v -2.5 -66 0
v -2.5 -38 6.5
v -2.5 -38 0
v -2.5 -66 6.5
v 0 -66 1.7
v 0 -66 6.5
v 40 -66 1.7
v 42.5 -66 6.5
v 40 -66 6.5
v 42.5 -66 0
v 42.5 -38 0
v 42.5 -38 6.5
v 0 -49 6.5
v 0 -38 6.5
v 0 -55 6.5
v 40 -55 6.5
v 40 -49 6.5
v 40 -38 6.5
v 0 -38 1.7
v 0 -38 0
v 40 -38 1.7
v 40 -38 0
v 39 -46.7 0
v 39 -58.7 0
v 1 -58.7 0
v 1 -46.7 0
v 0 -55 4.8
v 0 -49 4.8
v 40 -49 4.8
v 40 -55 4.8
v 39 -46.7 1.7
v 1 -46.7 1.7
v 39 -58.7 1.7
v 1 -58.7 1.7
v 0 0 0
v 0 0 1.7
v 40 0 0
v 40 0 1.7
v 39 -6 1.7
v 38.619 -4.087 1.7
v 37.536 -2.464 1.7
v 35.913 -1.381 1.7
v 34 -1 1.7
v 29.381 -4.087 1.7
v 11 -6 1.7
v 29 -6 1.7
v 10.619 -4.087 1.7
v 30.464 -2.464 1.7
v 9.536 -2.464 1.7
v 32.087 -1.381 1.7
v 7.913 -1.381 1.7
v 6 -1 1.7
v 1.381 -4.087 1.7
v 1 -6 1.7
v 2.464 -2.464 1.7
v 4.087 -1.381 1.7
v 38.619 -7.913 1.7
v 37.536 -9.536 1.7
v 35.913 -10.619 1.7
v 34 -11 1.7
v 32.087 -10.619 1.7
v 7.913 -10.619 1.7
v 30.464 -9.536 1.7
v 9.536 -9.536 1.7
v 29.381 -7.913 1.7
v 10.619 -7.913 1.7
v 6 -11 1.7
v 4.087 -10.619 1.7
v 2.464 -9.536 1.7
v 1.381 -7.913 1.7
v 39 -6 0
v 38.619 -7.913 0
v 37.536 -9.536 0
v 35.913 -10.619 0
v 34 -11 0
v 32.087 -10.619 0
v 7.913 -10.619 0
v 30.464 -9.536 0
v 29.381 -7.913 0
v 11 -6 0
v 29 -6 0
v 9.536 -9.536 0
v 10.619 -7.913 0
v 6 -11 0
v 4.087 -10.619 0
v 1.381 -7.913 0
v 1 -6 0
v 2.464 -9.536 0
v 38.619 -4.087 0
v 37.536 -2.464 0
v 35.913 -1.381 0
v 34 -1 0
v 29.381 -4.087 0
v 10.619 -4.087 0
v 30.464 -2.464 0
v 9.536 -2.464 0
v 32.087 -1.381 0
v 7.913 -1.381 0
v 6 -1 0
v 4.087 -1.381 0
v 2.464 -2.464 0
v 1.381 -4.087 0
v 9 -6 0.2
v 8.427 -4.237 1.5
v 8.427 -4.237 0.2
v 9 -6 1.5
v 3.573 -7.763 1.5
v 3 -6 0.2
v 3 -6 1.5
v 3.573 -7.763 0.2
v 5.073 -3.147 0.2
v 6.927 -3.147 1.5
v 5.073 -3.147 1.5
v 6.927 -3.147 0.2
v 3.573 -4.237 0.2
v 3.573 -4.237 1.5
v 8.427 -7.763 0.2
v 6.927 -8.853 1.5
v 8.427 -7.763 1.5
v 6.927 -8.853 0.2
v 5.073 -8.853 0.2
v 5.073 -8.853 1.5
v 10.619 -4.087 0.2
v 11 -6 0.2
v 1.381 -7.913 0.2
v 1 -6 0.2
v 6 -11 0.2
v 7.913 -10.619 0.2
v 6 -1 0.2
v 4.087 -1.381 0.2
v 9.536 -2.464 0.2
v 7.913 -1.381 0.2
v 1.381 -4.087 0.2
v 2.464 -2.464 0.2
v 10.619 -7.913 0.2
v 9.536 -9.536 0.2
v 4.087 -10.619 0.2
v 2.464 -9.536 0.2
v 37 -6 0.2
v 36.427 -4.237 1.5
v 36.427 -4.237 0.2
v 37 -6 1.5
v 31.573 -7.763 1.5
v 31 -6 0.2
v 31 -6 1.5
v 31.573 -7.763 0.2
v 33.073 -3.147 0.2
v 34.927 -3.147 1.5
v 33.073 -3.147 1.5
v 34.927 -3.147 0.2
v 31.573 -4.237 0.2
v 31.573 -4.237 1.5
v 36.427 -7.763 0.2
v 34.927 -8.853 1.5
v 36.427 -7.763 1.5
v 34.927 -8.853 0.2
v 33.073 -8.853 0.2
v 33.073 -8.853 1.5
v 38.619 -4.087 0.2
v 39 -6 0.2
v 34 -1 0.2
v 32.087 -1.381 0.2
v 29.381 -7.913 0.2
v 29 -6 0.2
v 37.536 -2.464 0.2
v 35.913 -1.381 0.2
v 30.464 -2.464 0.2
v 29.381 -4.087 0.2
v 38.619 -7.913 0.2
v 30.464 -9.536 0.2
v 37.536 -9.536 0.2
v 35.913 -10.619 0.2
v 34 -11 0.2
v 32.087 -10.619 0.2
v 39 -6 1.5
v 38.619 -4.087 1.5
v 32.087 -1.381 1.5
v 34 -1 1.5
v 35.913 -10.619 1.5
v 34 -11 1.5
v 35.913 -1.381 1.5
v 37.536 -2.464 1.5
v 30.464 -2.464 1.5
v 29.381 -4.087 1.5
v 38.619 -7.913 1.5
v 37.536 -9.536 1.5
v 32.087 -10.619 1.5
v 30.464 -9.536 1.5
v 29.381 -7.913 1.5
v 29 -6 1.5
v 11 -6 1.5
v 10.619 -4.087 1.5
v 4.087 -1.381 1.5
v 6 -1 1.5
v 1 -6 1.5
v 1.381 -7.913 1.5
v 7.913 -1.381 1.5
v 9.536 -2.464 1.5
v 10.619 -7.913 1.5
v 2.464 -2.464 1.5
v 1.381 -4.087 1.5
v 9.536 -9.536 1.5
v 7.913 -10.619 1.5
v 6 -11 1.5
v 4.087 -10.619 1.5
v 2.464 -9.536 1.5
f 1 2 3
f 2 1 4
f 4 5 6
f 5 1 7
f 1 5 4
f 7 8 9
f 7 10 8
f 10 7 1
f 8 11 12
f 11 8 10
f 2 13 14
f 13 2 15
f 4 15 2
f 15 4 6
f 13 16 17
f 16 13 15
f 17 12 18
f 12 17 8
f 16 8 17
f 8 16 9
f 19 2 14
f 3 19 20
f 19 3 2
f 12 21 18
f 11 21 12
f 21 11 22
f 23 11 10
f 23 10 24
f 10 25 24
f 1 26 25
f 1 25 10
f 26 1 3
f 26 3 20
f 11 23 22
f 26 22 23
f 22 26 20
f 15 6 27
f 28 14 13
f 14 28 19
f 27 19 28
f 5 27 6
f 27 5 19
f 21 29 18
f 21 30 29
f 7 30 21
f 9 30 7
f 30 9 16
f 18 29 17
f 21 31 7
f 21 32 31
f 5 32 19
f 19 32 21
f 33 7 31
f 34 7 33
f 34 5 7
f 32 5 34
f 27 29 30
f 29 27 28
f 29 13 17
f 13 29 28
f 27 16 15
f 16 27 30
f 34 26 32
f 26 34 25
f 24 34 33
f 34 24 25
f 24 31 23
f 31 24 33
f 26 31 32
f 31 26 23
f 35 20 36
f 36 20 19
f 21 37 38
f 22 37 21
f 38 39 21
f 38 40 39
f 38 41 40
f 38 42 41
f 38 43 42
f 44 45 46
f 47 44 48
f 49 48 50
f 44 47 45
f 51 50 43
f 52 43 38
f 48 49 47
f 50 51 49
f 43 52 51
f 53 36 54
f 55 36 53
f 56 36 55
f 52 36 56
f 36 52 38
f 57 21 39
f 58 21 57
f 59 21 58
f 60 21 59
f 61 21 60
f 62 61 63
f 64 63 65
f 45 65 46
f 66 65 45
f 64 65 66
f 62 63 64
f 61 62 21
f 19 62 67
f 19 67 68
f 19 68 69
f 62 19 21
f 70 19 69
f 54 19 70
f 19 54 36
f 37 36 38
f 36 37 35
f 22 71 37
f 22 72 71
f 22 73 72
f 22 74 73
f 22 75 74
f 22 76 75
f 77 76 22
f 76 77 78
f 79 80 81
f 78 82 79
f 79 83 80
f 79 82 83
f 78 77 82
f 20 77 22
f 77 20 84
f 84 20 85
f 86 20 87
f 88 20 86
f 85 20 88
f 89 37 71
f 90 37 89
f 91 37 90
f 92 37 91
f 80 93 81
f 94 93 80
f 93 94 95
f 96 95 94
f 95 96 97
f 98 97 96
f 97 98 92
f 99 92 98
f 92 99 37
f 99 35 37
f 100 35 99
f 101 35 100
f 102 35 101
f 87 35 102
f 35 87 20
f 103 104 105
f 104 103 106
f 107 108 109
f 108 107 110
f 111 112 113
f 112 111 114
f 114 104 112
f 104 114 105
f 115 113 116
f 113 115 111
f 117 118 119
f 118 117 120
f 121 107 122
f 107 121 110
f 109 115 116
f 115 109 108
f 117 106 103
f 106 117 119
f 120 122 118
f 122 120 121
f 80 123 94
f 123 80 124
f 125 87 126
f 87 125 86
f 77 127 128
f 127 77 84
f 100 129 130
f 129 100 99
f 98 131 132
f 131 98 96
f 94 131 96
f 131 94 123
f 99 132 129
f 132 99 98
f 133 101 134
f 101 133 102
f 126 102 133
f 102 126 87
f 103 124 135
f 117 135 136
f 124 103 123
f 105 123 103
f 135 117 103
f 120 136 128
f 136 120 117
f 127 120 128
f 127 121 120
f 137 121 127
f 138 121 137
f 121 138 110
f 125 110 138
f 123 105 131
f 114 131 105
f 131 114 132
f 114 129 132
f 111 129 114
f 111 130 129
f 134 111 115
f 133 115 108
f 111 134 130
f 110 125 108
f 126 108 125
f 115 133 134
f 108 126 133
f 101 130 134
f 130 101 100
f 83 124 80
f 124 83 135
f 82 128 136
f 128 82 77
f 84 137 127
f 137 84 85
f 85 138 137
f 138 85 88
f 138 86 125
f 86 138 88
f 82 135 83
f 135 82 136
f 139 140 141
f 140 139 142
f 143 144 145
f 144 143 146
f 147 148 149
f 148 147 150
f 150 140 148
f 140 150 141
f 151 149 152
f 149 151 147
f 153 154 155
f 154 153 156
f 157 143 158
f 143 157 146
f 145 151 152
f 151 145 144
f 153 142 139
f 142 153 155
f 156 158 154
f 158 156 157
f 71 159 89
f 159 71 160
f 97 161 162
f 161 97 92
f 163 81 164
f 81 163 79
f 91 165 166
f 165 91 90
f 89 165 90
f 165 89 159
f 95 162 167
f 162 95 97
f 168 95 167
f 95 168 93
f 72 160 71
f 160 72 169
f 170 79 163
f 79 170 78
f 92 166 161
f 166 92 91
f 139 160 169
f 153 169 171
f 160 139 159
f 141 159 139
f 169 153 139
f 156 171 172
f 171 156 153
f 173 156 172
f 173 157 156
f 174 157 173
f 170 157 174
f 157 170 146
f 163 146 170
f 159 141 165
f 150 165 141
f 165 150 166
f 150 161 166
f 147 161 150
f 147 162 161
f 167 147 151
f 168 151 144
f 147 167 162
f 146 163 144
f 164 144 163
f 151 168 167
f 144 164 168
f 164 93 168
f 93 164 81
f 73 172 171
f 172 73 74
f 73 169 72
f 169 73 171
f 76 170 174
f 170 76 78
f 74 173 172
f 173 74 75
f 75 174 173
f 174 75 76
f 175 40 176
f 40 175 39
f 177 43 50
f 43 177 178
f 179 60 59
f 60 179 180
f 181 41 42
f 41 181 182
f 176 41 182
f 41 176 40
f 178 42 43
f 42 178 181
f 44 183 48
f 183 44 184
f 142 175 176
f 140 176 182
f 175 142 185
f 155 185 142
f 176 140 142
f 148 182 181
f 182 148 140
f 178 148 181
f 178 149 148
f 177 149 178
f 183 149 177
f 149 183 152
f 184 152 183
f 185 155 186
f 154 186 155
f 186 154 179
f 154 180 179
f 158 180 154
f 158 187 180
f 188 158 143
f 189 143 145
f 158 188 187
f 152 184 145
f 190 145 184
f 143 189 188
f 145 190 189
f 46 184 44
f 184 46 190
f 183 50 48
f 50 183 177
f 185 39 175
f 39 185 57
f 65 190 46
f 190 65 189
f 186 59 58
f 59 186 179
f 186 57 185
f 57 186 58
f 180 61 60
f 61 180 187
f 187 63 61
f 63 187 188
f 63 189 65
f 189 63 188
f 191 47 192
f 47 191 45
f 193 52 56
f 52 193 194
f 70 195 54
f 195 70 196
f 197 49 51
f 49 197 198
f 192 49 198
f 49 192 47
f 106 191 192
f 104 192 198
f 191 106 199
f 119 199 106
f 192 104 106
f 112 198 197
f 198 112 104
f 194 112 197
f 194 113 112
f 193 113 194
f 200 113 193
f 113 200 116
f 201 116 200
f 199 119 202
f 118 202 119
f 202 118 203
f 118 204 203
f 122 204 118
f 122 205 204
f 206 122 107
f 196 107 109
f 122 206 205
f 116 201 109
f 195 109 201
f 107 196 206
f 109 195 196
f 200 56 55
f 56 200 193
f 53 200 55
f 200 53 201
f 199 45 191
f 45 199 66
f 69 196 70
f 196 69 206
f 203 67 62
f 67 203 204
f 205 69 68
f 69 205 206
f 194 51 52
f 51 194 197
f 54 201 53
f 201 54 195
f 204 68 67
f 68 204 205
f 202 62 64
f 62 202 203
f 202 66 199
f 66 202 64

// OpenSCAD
difference(){rotate([90,0,0])
    cube([40,1.7,38]);//the slices
//from here
rotate([0,0,0])
    translate([6,-6,0])
    cylinder(r=3,h=3);
    rotate([0,0,0])
    translate([6,-6,0])
    cylinder(r=5,h=0.2);
    rotate([0,0,0])
    translate([34,-6,0])
   cylinder(r=3,h=3);
    rotate([0,0,0])
    translate([34,-6,0])
    cylinder(r=5,h=0.2);
       rotate([0,0,0])
    translate([34,-6,1.5])
    cylinder(r=5,h=0.2);
     rotate([0,0,0])
    translate([6,-6,1.5])
    cylinder(r=5,h=0.2);//to here hole
    }
rotate([90,0,0])difference(){
translate([-2.5,0,38])
    cube([45,6.5,28]);
translate([0,1.7,38])
    cube([40,3.1,28]);
translate([0,4.8,38])
    cube([40,6,11]);
translate([0,4.8,55])
    cube([40,6,11]); 
translate([1,-1.7,46.7])
    cube([38,6,12]);
    
}//the holder of scotch 
